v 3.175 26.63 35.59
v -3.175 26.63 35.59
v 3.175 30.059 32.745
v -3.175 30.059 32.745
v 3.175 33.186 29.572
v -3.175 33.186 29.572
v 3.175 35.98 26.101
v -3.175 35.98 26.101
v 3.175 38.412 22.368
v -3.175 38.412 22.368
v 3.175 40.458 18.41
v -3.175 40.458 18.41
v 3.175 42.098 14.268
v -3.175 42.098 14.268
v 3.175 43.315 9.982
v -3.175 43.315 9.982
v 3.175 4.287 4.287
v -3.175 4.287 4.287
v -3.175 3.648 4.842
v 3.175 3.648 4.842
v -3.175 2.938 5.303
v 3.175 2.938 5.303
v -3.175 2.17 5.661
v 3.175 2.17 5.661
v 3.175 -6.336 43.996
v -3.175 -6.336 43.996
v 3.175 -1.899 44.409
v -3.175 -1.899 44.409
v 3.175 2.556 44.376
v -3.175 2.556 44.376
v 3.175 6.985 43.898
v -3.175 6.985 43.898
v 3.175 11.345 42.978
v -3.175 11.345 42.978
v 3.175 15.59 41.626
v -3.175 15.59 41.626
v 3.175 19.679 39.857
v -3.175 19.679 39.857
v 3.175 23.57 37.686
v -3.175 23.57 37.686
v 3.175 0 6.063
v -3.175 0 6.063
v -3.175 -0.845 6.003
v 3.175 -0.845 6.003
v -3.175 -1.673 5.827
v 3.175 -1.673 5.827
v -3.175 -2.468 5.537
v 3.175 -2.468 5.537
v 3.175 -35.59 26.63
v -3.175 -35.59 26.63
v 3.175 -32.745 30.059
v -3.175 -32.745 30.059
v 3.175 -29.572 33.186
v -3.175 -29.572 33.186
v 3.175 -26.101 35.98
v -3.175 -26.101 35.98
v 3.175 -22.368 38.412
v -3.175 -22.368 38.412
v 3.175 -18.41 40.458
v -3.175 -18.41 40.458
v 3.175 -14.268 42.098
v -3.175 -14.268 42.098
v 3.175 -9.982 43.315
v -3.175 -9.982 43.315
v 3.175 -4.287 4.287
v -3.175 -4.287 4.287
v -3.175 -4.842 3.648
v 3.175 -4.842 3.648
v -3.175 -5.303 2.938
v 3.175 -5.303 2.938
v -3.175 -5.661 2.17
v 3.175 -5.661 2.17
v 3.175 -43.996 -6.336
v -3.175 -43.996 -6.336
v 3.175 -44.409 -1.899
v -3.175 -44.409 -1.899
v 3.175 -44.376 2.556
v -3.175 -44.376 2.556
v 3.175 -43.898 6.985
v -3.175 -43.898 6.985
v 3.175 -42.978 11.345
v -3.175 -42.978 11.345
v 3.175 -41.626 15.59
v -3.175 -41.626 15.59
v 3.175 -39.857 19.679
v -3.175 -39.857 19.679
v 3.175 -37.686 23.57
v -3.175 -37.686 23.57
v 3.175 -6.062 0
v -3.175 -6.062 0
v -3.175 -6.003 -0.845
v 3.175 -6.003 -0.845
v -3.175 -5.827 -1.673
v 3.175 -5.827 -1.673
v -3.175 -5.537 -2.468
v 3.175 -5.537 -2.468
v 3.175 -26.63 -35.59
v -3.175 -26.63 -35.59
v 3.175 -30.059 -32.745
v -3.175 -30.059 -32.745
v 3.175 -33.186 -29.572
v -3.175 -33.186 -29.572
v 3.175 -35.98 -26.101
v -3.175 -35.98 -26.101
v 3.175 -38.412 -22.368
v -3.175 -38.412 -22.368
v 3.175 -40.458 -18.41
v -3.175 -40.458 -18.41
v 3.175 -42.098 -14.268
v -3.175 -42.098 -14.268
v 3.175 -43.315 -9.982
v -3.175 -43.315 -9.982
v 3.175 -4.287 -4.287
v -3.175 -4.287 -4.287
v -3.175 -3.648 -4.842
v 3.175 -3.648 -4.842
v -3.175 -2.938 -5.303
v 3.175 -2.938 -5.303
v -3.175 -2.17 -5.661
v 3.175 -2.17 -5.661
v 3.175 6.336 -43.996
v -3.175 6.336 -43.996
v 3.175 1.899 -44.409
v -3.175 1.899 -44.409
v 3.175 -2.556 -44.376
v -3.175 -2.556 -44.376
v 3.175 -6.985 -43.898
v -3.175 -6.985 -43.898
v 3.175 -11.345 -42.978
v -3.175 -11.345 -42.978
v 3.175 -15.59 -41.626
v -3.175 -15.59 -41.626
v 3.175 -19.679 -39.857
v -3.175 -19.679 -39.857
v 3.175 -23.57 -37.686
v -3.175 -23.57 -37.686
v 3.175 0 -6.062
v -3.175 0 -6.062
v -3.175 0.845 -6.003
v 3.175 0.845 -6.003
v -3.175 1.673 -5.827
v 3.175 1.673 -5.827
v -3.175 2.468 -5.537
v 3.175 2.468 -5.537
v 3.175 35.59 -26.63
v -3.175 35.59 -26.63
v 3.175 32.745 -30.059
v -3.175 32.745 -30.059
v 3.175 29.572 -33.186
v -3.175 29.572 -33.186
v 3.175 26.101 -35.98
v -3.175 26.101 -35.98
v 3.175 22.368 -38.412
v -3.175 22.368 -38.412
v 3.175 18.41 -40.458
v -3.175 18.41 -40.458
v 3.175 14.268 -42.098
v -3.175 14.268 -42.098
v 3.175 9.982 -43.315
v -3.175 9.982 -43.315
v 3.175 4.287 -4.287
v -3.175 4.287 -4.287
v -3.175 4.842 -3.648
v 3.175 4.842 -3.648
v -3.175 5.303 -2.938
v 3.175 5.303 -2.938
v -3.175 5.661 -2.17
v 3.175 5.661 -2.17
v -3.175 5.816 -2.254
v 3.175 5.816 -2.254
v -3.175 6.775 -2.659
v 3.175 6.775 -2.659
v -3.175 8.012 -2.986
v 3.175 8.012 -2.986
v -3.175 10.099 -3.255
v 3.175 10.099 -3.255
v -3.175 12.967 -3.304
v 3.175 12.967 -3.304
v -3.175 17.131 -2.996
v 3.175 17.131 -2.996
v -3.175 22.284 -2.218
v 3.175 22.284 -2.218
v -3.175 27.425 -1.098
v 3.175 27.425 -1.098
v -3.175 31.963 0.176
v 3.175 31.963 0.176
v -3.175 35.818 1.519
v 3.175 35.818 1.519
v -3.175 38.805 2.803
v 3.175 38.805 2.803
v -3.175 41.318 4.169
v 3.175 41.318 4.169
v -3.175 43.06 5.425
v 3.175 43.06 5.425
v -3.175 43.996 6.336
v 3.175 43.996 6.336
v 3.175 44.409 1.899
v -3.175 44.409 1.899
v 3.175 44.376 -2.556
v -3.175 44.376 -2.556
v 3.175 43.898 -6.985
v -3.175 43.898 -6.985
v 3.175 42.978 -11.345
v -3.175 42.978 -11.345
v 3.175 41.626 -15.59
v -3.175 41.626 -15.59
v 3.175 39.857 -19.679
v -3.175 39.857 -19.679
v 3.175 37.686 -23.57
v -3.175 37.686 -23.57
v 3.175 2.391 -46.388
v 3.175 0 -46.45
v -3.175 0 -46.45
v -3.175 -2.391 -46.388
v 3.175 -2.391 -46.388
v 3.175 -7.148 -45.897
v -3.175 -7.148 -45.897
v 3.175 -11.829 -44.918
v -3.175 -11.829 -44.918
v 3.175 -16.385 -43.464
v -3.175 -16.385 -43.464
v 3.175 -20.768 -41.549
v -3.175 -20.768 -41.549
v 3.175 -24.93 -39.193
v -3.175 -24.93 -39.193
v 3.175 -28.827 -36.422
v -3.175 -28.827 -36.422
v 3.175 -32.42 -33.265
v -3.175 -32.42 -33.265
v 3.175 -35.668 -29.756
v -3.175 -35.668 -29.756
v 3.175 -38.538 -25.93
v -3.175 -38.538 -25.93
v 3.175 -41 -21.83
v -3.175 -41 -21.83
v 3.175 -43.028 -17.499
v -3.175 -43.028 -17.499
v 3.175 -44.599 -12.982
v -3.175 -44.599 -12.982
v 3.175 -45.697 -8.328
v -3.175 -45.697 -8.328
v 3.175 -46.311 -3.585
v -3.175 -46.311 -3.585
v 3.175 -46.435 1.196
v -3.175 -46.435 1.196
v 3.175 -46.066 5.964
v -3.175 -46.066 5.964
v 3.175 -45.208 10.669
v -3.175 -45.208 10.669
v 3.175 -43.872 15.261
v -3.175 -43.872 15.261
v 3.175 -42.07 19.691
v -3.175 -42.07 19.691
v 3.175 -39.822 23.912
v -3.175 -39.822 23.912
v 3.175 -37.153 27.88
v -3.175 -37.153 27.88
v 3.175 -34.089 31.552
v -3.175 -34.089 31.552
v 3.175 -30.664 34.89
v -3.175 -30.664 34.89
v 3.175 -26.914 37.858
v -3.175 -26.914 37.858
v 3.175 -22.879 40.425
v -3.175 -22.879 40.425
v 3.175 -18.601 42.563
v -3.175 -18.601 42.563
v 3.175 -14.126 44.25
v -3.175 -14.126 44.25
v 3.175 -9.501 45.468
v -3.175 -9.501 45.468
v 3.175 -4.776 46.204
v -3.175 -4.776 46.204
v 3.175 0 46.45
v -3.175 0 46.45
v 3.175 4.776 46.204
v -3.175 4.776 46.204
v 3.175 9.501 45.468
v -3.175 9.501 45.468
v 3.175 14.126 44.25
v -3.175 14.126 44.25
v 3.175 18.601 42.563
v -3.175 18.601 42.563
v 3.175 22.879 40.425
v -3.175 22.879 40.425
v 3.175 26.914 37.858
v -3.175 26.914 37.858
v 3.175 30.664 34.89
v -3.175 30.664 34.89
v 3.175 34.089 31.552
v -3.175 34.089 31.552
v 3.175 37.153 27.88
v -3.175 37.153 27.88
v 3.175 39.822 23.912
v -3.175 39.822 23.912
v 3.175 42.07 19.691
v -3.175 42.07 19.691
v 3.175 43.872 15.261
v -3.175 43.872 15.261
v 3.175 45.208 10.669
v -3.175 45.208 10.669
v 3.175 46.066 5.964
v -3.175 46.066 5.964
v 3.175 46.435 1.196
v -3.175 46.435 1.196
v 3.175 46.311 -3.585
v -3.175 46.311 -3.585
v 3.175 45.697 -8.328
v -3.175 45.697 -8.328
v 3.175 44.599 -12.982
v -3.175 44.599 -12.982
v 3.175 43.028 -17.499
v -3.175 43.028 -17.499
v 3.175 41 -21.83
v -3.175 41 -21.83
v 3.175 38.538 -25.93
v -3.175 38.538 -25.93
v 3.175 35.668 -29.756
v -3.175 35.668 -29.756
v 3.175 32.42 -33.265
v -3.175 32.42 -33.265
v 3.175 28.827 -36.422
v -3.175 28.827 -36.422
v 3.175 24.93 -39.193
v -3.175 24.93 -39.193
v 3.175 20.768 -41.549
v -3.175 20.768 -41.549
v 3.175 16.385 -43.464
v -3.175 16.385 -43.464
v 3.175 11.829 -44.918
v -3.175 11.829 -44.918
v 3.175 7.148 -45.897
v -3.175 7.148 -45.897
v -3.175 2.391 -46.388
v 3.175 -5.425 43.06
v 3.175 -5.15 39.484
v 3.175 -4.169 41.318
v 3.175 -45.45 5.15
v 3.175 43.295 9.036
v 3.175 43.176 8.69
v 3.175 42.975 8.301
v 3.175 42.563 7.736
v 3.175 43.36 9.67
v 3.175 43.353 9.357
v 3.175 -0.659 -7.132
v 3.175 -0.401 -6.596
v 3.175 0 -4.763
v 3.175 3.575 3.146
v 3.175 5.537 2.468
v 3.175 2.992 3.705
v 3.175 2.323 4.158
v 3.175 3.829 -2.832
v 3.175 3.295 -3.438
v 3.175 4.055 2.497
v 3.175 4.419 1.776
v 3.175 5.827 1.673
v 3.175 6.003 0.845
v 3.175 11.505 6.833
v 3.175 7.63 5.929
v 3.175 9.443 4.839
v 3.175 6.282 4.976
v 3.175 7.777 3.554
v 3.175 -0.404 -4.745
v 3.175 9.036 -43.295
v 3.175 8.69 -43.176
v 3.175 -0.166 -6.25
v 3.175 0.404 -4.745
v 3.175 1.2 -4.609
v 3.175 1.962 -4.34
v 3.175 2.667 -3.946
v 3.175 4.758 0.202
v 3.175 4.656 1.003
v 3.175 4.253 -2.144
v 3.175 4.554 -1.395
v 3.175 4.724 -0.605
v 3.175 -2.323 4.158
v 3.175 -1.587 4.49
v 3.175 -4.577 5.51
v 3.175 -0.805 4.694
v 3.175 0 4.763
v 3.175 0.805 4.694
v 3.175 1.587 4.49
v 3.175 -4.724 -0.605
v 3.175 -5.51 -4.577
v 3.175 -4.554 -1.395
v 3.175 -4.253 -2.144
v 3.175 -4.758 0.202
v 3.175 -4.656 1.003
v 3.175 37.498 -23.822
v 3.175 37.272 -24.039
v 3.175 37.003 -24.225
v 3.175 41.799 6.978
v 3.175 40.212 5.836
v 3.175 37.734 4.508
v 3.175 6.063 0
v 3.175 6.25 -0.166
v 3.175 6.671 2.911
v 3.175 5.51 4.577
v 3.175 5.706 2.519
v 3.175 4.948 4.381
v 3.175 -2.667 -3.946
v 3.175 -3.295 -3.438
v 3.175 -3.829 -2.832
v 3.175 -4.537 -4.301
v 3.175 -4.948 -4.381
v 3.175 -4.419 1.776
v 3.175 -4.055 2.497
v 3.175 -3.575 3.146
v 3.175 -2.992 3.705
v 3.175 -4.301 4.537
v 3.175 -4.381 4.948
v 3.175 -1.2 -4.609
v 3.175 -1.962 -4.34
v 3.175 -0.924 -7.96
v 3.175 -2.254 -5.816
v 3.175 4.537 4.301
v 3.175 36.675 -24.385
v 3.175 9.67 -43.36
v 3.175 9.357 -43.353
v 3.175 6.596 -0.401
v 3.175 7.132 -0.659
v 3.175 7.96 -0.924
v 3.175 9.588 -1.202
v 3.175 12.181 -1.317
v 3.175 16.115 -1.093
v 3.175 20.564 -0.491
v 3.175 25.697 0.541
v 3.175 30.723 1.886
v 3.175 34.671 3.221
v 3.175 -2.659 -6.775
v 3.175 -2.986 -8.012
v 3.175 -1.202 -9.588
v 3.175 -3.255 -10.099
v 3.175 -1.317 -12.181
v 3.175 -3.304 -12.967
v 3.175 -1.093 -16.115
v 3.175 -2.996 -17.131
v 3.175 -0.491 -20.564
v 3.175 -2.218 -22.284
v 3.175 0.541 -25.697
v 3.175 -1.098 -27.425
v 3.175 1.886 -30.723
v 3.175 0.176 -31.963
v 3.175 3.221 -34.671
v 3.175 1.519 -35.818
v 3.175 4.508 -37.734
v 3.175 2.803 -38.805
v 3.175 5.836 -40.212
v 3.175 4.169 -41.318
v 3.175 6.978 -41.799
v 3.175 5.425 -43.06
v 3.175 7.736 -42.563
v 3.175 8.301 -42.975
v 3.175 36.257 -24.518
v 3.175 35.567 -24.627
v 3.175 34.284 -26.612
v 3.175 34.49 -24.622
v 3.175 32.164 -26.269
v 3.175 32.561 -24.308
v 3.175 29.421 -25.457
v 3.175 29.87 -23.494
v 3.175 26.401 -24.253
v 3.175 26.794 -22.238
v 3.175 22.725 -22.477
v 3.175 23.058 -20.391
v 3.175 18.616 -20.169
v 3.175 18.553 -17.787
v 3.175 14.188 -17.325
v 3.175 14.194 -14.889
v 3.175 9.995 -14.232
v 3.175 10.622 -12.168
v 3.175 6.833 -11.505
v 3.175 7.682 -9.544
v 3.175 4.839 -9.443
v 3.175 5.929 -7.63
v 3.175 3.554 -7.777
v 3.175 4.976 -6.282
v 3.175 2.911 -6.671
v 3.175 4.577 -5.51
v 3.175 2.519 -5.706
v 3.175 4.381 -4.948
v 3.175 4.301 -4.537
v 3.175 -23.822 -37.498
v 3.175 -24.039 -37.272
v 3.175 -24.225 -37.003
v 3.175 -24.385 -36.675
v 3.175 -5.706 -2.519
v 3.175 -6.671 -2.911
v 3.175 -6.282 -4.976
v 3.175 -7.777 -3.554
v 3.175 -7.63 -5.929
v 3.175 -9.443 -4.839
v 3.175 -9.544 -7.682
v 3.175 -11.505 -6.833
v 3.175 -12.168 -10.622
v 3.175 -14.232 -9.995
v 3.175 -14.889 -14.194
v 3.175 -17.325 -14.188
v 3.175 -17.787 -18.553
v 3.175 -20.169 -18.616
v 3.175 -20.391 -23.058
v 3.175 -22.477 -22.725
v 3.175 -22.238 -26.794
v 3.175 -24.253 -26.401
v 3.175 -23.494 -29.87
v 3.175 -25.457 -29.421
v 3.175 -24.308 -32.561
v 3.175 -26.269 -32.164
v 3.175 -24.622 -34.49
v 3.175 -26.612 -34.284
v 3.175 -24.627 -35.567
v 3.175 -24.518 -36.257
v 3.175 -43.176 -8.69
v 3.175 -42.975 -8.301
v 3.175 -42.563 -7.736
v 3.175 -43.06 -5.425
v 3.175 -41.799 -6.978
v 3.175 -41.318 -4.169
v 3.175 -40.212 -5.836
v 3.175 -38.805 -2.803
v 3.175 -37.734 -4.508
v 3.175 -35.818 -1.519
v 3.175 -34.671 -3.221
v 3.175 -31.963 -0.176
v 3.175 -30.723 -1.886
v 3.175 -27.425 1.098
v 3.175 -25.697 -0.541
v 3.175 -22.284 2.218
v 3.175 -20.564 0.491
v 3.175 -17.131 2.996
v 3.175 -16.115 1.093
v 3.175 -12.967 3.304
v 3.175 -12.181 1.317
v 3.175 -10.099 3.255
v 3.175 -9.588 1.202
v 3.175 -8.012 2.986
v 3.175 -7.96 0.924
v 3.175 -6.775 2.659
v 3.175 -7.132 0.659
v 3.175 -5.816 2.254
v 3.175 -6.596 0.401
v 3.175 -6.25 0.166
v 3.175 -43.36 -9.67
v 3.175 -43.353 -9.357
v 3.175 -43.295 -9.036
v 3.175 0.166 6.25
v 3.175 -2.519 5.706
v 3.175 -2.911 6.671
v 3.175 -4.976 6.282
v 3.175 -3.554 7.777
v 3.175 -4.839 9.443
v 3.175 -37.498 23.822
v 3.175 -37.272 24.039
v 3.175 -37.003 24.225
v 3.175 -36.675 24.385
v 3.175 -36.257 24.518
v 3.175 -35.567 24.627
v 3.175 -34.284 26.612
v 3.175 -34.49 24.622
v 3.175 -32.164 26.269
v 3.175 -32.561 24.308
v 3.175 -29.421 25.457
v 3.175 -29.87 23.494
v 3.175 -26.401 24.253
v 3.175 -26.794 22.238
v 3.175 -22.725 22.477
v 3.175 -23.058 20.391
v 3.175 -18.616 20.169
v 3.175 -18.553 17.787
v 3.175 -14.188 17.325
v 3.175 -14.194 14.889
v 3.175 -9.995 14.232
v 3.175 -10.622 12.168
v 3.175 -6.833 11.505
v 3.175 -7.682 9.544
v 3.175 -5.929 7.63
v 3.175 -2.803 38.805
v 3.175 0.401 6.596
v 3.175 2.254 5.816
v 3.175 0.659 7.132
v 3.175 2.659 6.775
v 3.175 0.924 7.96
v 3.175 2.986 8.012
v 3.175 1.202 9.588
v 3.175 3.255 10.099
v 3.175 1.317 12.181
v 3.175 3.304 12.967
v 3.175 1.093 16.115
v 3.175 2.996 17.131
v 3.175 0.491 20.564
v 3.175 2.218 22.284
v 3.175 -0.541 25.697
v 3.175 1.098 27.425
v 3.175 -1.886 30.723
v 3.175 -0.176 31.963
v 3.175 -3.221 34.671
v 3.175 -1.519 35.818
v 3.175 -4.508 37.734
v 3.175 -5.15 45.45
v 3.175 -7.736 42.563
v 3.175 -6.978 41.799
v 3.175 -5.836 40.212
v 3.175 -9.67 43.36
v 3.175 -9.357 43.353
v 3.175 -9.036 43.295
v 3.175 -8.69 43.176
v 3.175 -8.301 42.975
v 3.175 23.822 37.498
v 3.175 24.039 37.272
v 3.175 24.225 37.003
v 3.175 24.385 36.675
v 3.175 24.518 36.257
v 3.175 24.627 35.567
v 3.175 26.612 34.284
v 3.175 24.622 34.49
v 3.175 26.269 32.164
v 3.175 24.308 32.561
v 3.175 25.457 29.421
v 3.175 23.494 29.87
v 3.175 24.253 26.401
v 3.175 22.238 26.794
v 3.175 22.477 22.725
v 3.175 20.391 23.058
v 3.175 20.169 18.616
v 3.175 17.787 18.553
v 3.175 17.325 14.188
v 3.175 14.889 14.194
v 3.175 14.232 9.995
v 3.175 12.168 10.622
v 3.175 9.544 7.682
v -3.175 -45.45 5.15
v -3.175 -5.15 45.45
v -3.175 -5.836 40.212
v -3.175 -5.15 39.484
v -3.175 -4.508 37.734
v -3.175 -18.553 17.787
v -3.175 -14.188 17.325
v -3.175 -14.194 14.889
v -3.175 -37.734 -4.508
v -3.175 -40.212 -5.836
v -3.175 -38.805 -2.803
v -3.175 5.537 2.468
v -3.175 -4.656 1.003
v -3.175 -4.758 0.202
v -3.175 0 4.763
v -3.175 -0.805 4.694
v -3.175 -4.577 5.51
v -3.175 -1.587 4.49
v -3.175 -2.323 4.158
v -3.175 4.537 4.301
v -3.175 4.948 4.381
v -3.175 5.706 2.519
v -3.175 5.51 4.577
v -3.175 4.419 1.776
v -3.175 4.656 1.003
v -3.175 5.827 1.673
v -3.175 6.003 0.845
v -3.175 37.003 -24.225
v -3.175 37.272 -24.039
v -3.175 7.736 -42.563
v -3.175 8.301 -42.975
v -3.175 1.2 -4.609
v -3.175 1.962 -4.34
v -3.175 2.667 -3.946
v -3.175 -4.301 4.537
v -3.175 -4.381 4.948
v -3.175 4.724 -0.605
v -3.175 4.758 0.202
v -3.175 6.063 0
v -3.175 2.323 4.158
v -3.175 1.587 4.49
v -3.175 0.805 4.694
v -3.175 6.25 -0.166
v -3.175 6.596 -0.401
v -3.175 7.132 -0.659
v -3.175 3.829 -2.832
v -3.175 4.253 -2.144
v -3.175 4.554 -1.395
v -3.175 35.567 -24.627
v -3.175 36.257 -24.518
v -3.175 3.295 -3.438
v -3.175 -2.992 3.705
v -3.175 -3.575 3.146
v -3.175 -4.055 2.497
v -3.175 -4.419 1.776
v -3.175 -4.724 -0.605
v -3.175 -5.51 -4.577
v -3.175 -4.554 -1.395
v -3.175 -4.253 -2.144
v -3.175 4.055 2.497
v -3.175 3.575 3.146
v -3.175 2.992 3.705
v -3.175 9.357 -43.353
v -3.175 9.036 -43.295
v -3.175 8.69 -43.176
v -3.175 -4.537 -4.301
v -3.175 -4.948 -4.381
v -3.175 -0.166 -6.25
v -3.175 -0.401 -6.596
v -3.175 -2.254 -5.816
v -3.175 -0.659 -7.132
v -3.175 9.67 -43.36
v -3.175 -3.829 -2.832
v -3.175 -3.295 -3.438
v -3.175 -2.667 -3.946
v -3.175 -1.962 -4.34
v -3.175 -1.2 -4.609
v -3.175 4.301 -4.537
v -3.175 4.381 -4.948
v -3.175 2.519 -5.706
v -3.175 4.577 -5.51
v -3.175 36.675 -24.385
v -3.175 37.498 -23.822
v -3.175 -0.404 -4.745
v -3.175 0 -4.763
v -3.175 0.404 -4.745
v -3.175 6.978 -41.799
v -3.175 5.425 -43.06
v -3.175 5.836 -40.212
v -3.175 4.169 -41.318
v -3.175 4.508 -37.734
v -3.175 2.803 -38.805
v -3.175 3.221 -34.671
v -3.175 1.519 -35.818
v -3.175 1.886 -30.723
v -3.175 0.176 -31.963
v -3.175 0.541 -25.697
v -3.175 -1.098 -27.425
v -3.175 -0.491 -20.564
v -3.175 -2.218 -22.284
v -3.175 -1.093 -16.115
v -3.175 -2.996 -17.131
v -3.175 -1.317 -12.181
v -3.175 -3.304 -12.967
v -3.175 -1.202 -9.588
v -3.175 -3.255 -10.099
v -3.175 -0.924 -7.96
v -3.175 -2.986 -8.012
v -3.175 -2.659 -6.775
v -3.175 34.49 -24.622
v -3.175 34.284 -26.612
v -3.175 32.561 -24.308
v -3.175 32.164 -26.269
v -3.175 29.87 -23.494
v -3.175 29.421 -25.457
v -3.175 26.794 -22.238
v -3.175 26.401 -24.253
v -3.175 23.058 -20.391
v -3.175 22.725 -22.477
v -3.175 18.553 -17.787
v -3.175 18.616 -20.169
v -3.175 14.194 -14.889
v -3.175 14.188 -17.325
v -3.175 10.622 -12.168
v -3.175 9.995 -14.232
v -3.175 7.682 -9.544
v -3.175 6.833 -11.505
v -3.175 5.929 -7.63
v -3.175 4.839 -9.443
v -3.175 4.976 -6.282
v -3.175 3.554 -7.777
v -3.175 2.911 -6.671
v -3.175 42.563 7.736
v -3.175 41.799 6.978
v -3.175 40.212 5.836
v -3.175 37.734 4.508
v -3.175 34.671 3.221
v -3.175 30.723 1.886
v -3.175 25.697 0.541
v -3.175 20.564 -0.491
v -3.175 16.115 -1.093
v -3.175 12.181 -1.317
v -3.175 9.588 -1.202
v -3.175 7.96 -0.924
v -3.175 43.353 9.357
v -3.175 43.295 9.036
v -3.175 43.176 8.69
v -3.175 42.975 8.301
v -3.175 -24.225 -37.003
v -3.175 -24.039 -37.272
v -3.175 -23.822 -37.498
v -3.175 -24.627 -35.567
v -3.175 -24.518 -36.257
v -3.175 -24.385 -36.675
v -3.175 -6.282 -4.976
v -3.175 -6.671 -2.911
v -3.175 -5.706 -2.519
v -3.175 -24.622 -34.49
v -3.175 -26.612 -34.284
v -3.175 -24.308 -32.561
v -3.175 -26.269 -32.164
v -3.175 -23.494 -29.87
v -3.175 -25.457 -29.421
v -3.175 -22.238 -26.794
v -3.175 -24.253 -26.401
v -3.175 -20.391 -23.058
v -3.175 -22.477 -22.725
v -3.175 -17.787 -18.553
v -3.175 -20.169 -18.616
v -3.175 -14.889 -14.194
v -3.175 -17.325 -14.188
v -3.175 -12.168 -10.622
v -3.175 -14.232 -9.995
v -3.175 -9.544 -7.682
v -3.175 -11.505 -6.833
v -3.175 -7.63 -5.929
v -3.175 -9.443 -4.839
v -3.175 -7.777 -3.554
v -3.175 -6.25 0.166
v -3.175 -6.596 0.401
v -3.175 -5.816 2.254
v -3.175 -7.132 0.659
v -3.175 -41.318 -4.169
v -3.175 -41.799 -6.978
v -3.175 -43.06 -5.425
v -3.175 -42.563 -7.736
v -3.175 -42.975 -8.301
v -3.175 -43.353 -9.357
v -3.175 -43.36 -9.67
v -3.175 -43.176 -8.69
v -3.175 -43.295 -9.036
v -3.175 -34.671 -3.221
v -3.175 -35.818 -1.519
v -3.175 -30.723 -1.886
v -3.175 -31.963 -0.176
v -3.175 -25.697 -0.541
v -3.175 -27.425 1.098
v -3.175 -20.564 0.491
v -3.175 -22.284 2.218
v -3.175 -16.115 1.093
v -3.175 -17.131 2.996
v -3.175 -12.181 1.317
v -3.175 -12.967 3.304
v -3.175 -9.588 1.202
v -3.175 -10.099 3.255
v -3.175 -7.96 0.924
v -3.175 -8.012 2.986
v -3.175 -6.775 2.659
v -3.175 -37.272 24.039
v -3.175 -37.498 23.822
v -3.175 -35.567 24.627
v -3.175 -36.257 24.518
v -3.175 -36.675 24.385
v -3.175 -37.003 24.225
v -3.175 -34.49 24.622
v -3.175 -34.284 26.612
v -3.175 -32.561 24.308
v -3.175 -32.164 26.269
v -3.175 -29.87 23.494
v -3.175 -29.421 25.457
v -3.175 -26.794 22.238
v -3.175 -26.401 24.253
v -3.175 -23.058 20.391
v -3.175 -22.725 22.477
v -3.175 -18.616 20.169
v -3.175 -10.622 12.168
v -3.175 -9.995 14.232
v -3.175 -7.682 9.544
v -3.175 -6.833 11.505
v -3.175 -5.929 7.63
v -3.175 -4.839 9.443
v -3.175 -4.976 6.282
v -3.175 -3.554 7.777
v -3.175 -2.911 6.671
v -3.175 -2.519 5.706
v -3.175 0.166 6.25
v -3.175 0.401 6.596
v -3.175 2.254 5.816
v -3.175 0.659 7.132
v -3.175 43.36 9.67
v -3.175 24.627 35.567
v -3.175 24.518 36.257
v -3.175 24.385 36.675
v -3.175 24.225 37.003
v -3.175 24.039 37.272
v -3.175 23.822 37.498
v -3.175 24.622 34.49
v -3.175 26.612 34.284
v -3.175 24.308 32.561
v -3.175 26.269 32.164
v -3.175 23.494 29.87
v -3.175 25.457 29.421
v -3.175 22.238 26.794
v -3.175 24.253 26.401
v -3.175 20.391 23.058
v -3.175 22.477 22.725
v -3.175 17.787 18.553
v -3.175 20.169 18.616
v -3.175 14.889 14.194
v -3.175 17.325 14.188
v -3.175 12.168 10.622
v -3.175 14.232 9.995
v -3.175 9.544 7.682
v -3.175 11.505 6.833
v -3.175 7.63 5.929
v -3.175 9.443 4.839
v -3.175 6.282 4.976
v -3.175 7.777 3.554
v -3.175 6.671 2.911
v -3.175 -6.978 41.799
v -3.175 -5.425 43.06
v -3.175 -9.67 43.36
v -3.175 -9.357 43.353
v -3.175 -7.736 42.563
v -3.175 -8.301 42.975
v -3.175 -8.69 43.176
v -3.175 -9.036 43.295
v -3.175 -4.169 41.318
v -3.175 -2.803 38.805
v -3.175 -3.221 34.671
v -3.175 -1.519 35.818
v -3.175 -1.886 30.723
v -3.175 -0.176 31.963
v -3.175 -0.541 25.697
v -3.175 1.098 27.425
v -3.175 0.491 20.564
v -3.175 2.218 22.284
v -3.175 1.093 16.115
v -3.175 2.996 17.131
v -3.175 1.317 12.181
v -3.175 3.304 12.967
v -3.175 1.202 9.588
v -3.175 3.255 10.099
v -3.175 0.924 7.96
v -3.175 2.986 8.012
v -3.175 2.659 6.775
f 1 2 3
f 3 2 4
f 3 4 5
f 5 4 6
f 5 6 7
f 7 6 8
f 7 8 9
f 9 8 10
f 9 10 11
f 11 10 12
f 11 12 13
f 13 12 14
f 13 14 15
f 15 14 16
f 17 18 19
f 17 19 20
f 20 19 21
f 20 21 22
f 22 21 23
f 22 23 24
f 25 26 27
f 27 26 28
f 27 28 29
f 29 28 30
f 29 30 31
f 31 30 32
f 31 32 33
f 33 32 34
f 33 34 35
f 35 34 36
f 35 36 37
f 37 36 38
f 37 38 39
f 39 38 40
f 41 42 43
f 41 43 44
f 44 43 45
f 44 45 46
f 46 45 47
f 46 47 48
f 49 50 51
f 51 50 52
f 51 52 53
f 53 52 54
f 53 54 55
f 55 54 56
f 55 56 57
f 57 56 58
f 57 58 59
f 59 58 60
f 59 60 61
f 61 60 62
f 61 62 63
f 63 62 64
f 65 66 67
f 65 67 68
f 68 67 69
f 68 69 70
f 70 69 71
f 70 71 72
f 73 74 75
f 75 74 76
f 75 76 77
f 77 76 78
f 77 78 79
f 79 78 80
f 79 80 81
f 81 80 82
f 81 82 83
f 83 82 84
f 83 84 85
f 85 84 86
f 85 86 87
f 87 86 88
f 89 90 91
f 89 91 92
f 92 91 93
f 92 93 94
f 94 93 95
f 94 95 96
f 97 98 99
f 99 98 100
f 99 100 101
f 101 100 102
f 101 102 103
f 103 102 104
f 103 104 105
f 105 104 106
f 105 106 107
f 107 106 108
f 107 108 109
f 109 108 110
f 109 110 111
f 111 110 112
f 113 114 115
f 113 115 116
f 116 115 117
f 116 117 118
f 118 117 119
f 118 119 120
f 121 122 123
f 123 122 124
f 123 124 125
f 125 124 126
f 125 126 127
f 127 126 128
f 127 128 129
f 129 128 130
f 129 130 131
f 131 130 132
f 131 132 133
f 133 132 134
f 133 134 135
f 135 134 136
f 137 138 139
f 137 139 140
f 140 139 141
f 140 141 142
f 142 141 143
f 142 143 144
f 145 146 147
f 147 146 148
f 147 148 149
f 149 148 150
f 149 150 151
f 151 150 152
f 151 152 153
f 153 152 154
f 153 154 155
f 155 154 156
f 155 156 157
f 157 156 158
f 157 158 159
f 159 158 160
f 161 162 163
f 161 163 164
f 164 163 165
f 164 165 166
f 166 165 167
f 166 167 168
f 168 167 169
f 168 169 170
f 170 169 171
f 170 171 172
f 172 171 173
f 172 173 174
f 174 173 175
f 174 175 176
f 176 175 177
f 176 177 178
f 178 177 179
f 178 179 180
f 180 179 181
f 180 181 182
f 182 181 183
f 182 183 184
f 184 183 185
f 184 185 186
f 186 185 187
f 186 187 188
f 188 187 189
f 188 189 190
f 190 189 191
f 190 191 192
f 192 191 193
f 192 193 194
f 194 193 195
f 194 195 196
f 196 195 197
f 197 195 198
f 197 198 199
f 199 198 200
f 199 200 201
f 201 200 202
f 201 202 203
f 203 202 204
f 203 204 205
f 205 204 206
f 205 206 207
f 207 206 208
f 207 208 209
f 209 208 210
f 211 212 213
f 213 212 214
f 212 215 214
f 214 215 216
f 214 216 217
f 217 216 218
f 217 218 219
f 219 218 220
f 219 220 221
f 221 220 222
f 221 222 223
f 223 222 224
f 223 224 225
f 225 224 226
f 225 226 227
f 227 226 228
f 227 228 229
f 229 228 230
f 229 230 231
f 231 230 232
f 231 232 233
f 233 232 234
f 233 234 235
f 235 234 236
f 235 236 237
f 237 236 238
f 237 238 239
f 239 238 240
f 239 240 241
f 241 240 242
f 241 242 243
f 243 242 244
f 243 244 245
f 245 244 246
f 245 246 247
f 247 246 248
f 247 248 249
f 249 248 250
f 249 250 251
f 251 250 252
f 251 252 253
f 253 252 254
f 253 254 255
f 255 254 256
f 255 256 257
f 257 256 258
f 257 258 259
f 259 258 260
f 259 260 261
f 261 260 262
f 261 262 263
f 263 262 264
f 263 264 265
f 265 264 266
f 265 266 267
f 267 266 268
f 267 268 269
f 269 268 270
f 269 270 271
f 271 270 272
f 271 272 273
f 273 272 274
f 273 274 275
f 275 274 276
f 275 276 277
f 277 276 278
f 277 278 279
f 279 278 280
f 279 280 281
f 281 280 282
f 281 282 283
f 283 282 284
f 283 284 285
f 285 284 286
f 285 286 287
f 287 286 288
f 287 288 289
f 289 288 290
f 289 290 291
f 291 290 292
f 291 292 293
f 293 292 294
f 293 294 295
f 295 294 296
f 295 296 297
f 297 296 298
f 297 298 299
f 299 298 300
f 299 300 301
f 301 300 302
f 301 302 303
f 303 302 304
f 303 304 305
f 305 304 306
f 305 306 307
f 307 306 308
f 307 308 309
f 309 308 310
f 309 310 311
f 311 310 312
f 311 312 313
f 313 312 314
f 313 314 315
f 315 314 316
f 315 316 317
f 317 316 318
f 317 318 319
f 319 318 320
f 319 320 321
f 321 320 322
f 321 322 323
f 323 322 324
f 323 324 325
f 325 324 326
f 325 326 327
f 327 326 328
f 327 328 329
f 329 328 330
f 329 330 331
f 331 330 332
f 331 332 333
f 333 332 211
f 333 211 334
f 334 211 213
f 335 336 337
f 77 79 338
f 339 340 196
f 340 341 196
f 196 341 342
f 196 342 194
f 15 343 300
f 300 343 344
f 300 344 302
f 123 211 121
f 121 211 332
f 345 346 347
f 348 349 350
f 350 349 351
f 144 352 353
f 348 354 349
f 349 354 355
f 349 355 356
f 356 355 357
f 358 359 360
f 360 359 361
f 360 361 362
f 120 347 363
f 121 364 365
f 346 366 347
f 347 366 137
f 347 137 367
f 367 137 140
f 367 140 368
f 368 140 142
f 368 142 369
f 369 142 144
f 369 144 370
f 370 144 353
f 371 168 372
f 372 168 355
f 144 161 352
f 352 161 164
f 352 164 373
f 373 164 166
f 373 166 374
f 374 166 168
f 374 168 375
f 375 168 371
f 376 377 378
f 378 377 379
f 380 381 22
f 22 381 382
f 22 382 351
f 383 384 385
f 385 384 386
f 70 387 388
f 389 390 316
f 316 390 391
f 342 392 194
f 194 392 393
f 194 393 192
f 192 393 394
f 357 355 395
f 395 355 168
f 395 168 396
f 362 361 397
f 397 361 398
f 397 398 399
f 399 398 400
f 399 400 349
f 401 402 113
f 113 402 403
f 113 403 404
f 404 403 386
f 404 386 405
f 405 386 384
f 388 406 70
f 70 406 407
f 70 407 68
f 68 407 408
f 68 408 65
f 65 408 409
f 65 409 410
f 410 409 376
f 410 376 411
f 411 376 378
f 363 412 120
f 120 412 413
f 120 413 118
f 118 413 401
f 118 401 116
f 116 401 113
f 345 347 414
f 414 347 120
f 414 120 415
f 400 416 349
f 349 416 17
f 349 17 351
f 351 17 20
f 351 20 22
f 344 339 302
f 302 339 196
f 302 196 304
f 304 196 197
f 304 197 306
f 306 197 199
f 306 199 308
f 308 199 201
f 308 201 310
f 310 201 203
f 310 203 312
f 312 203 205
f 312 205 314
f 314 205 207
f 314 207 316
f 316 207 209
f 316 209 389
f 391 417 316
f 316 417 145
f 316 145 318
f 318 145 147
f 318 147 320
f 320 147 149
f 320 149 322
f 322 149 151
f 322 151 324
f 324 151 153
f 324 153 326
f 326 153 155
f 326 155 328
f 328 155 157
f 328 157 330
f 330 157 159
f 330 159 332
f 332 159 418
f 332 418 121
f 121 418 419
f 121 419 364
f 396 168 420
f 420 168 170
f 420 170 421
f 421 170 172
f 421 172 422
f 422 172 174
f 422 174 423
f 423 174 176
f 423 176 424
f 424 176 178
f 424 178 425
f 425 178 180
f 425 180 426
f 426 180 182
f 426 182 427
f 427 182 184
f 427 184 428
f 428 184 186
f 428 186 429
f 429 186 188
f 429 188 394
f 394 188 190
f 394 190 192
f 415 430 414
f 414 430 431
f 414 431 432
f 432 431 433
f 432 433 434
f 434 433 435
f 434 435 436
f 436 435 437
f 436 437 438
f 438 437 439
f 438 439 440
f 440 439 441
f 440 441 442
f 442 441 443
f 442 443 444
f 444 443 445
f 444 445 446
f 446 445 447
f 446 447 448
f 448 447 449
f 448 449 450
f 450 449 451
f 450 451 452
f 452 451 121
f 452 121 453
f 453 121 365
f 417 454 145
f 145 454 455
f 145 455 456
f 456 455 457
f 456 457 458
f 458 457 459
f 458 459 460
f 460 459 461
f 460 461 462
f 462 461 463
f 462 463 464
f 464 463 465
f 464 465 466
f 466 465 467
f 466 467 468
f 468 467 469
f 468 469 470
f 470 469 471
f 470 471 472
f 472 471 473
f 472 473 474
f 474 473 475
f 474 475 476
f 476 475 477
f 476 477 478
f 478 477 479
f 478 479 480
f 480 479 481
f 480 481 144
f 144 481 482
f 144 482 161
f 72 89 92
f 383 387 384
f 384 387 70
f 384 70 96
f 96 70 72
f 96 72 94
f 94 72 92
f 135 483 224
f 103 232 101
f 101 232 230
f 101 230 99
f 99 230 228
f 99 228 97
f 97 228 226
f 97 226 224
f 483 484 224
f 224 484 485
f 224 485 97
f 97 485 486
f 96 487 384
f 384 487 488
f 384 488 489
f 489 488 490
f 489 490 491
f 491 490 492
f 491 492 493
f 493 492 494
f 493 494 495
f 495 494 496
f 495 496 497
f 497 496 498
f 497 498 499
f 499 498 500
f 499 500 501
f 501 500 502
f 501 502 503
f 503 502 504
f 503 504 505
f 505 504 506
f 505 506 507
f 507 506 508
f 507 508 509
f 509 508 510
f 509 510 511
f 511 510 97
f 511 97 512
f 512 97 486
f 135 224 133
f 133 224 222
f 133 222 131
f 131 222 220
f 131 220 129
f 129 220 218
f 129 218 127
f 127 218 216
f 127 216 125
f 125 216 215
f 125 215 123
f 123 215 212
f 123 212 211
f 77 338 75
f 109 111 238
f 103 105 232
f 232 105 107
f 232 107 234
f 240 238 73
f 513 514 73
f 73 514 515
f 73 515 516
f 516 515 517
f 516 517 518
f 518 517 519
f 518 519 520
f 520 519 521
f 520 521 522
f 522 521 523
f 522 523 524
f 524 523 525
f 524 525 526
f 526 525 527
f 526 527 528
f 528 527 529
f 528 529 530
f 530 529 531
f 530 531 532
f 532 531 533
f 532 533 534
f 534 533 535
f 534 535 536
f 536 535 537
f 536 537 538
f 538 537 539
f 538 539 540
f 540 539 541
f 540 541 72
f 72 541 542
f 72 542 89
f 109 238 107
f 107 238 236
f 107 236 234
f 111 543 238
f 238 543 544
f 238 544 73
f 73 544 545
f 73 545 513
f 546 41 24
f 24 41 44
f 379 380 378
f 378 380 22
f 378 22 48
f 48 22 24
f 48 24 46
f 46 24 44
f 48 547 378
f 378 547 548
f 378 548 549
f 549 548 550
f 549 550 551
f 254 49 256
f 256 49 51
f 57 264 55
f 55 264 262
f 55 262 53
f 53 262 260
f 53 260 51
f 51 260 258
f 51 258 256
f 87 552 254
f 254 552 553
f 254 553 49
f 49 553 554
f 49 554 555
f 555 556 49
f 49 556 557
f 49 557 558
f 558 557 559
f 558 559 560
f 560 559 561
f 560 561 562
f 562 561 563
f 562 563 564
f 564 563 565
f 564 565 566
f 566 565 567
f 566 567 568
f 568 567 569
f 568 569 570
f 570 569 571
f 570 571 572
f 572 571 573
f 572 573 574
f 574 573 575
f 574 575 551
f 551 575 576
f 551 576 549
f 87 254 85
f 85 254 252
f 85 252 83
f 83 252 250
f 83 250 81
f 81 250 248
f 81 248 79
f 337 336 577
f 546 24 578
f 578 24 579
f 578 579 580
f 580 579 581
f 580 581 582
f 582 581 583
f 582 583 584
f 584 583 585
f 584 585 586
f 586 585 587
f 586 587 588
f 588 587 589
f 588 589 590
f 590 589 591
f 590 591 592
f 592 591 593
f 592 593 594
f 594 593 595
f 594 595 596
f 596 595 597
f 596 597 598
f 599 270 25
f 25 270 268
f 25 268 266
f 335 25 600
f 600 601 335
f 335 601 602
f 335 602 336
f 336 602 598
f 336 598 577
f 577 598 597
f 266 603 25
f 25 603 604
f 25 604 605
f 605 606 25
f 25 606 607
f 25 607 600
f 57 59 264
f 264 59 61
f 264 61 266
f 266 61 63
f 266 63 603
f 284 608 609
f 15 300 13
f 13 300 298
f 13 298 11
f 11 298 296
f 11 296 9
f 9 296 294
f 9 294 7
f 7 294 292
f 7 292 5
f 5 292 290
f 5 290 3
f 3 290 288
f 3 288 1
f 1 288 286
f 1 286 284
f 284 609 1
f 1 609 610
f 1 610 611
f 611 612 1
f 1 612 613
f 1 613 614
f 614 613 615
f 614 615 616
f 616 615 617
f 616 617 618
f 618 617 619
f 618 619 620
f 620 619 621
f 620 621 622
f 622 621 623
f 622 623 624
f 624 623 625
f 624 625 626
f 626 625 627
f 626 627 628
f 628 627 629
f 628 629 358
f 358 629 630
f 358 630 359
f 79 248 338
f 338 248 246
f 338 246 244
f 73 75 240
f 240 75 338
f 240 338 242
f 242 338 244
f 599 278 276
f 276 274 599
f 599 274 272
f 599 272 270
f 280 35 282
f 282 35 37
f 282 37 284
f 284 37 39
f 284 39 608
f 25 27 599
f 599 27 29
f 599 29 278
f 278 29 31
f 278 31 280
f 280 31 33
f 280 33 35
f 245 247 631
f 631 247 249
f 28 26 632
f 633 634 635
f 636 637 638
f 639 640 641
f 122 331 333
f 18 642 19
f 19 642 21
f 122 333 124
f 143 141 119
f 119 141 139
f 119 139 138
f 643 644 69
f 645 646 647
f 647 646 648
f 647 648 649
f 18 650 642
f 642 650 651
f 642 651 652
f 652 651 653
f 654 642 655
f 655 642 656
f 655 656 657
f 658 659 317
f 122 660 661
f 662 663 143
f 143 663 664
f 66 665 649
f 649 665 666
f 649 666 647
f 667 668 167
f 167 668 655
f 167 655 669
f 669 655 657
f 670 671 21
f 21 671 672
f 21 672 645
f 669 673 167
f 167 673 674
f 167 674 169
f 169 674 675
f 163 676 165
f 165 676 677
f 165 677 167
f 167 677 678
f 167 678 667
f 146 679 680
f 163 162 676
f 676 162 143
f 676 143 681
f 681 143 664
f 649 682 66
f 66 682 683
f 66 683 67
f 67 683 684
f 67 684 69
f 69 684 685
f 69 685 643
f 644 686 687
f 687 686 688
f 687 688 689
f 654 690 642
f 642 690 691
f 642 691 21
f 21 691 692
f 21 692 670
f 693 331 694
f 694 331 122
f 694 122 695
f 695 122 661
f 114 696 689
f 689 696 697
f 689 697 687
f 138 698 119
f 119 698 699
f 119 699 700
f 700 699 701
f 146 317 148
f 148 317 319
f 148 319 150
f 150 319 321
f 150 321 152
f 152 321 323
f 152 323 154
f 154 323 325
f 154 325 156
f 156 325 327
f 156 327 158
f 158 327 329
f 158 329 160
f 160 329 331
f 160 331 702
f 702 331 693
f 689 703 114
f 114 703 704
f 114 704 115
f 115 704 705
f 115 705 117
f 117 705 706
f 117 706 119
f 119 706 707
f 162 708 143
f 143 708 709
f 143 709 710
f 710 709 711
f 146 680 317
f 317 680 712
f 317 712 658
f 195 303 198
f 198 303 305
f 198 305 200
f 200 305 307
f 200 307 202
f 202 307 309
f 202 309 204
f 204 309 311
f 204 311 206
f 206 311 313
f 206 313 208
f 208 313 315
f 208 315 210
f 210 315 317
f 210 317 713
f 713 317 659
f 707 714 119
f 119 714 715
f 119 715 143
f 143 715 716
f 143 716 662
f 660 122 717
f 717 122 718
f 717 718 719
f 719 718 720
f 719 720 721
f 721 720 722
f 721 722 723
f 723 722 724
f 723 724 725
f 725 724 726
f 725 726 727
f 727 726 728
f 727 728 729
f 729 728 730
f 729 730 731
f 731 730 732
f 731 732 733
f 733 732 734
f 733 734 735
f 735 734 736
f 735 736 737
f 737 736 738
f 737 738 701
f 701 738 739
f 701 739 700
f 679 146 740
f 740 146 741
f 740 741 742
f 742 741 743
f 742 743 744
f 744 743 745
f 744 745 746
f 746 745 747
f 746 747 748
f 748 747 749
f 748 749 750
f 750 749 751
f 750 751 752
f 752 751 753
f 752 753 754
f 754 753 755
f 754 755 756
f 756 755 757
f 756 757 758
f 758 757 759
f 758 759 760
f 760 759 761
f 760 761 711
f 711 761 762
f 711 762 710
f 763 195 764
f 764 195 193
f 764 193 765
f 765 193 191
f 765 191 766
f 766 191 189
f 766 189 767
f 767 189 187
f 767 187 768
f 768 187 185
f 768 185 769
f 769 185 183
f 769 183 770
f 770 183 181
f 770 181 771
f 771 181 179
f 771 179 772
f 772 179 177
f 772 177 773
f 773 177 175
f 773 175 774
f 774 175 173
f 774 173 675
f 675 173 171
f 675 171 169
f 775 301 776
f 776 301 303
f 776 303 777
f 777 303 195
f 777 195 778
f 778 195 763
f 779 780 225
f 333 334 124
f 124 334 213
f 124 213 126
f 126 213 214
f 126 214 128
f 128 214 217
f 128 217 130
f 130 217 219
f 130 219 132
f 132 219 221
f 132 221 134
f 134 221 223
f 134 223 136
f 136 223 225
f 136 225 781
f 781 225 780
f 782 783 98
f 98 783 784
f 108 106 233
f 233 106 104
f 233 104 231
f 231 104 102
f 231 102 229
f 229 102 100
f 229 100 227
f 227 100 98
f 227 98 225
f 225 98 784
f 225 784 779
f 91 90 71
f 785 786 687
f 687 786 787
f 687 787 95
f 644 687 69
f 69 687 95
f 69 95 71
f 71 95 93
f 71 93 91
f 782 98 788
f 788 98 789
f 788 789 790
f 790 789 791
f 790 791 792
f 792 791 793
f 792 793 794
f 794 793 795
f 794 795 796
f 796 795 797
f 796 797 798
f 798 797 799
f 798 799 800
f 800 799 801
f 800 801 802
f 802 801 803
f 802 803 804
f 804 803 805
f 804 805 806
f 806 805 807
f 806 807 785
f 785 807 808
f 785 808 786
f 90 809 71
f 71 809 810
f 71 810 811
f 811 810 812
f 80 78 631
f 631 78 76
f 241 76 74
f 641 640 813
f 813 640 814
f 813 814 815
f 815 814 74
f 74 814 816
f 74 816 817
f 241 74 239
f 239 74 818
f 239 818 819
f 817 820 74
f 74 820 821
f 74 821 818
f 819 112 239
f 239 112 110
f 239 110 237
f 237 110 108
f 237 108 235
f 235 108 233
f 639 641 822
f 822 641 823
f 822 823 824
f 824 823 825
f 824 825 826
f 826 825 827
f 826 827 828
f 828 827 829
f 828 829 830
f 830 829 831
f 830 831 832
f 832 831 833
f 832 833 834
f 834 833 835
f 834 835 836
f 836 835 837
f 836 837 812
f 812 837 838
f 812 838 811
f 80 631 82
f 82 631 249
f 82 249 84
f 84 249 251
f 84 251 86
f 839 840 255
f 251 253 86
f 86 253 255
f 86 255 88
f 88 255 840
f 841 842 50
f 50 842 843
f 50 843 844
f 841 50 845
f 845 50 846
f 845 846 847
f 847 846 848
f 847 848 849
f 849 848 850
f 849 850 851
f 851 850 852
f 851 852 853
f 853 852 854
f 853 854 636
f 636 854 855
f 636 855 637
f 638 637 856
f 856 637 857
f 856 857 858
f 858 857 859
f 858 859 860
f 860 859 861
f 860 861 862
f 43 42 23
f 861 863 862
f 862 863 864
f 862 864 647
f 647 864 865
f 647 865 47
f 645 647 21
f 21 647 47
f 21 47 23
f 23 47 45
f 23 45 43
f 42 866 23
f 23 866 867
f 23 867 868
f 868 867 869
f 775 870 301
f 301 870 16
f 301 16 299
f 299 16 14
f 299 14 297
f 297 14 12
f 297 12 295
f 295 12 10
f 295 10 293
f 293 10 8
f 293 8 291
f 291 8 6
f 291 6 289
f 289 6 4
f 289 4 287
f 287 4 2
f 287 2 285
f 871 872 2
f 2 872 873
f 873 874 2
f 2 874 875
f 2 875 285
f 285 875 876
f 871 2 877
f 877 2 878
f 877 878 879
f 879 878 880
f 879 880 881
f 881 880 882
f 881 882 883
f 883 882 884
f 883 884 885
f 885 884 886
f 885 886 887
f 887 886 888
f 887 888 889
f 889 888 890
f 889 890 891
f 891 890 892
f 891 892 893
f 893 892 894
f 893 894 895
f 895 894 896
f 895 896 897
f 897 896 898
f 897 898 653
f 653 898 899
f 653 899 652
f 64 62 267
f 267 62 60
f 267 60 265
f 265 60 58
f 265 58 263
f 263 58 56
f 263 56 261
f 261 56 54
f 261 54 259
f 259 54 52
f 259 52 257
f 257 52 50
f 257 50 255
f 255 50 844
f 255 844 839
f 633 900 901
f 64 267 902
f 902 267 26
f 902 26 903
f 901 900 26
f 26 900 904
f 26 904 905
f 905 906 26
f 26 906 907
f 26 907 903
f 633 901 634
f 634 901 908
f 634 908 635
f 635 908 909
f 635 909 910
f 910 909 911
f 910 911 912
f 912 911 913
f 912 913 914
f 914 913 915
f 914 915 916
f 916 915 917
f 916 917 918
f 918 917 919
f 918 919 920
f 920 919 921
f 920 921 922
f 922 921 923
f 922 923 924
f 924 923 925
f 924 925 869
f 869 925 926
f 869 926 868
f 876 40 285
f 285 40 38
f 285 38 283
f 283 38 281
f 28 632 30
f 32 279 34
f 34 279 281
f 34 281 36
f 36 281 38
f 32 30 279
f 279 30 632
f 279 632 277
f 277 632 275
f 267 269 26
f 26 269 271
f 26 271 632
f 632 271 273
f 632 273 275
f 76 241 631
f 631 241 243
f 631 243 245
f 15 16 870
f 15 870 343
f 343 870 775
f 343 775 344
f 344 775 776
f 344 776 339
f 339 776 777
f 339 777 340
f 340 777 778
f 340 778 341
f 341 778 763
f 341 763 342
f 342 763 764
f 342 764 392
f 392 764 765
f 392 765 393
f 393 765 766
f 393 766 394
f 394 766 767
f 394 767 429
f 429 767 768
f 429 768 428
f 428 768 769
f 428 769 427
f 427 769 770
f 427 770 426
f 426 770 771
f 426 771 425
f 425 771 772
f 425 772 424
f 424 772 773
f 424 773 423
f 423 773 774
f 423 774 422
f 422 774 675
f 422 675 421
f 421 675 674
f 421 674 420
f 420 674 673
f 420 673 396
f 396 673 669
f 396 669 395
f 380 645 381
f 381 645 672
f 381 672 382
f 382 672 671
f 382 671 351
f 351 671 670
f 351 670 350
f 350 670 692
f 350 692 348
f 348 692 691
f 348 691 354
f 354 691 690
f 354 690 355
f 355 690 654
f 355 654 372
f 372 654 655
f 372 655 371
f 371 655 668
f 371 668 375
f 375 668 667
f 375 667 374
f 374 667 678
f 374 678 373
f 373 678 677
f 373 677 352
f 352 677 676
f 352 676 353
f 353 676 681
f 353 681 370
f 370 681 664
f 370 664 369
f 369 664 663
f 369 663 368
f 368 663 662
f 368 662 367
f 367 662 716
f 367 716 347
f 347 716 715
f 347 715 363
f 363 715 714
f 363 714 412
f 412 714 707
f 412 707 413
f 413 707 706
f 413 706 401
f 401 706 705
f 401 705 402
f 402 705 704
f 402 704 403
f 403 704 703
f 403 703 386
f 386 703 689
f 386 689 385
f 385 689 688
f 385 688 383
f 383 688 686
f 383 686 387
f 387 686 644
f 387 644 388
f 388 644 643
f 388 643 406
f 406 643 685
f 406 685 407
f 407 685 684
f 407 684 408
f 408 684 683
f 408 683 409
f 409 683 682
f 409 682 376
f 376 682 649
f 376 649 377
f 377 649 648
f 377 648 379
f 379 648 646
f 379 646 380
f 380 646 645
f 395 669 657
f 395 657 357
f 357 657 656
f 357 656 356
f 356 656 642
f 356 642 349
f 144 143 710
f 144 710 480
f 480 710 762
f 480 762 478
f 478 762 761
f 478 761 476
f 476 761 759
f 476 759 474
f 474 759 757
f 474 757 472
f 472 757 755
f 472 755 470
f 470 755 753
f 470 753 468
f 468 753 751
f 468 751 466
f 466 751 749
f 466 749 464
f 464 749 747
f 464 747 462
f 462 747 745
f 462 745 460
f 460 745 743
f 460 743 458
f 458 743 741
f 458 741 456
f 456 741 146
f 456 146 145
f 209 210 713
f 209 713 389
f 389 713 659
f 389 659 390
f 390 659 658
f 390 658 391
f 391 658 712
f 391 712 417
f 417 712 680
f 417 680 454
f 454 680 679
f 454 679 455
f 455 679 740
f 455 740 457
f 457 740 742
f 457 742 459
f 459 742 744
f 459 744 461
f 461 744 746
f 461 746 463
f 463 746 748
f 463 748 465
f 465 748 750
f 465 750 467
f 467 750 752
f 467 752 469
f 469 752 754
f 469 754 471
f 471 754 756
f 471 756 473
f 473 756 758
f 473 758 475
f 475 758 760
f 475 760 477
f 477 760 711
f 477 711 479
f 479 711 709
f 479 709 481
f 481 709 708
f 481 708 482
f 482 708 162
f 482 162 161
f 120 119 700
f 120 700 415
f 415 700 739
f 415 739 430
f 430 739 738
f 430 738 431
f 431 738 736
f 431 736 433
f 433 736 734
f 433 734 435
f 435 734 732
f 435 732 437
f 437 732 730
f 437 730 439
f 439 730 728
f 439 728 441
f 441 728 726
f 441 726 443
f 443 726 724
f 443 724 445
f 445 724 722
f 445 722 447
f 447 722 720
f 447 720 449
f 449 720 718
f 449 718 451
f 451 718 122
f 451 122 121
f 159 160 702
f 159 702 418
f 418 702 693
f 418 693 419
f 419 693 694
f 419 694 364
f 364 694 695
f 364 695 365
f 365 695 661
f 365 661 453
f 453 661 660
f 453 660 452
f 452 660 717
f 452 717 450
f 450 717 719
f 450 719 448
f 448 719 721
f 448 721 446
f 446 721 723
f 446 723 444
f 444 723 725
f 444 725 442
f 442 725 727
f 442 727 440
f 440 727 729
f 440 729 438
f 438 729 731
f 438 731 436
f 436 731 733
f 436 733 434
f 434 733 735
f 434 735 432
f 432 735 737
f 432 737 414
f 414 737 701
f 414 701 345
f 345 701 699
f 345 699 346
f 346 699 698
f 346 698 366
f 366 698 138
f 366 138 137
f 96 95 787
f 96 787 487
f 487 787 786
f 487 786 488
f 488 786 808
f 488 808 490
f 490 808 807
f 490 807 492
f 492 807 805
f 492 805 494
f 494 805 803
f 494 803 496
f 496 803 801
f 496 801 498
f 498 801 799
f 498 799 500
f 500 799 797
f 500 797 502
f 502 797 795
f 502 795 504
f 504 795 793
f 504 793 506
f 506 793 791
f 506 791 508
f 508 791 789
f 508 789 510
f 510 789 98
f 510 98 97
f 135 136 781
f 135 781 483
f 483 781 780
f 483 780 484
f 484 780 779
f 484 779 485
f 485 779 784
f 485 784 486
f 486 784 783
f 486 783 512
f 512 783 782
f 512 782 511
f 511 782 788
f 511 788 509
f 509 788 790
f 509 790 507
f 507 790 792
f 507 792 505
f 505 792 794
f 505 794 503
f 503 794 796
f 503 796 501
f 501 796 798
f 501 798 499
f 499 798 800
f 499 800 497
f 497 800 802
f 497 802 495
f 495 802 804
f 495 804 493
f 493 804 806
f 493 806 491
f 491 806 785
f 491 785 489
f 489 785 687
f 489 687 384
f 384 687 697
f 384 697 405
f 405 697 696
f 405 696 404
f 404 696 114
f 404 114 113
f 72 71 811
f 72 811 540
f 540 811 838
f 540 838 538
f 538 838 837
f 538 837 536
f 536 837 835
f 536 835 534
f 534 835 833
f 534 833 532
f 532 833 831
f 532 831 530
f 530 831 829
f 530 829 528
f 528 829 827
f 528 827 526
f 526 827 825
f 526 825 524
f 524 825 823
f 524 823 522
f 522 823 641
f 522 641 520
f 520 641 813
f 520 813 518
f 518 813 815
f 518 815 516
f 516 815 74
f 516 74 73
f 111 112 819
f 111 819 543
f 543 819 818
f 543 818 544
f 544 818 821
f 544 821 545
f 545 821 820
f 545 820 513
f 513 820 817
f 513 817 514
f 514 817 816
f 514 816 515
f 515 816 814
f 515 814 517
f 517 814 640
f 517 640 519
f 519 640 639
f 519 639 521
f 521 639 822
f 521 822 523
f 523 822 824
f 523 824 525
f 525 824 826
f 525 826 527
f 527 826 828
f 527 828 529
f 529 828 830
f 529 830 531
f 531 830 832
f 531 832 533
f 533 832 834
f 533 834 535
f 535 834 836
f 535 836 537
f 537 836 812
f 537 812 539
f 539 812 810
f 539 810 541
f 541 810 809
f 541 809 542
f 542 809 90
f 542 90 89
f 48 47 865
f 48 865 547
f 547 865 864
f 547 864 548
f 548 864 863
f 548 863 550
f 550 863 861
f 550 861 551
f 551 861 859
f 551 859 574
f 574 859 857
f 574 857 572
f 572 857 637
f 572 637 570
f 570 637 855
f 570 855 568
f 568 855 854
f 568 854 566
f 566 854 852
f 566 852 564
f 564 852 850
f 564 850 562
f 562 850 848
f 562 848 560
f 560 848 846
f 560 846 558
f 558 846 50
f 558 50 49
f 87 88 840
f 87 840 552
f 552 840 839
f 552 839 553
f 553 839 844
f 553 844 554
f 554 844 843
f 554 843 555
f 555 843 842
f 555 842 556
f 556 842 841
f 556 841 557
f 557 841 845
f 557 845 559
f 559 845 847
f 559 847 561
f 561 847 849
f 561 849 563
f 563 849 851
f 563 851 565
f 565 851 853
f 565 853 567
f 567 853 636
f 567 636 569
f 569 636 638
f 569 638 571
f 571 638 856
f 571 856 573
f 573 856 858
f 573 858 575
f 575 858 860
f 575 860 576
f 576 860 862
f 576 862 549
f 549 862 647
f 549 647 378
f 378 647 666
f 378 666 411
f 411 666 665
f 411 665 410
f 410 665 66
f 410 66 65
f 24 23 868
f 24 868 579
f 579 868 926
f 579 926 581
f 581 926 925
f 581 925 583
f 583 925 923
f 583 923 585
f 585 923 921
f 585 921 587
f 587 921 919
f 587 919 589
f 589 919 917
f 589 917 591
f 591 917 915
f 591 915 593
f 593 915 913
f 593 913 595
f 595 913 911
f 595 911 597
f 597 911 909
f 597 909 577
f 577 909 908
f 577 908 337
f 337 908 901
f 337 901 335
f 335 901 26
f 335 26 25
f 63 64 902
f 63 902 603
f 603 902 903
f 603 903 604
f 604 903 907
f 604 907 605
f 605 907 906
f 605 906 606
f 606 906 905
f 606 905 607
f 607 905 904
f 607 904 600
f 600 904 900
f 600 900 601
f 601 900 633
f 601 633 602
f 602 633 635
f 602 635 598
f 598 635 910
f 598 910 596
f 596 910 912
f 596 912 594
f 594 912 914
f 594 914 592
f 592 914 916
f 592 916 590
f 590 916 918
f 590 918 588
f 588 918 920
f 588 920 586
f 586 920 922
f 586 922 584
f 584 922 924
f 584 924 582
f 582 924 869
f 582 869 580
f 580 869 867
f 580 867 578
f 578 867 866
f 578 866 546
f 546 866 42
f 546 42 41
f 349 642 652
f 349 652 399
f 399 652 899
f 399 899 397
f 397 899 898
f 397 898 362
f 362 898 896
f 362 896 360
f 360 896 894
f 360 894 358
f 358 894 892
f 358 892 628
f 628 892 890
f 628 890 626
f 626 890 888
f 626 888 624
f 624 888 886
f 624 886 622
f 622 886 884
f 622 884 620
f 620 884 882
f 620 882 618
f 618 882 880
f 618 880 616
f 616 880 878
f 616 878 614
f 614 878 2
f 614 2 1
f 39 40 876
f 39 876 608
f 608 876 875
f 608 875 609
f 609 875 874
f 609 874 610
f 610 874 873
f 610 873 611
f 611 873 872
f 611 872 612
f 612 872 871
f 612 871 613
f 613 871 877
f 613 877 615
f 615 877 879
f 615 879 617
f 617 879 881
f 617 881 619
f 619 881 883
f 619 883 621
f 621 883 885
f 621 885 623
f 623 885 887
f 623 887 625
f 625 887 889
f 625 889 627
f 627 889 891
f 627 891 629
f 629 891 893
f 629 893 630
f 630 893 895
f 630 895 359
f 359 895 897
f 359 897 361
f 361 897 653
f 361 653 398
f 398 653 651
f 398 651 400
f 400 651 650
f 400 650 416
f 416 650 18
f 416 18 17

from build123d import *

# Parameters (mm, degrees)
SKETCH1_R             = 6.0625
SKETCH1_R_2           = 4.7625
BOSS_EXTRUDE1_DEPTH   = 3.175
SKETCH1_R_3           = 46.45
SKETCH1_R_4           = 44.45
BOSS_EXTRUDE1_2_DEPTH = 3.175
EXTRUDE_THIN2_START   = -3.175
EXTRUDE_THIN2_DEPTH   = 6.35
CIRPATTERN1_COUNT     = 8


# Read off the part's stored shape, not the designer's step: Extrude-Thin2
with BuildPart() as part:
    # Sketch1 → Boss-Extrude1 (new, symmetric)
    with BuildSketch(Plane(origin=(0, 0, 0), x_dir=(0, 0, -1), z_dir=(1, 0, 0))):
        Circle(SKETCH1_R)
        Circle(SKETCH1_R_2, mode=Mode.SUBTRACT)
    extrude(amount=BOSS_EXTRUDE1_DEPTH, both=True)



with BuildPart() as body_2:
    # Sketch1 → Boss-Extrude1 2 (new, symmetric)
    with BuildSketch(Plane(origin=(0, 0, 0), x_dir=(0, 0, -1), z_dir=(1, 0, 0))):
        Circle(SKETCH1_R_3)
        Circle(SKETCH1_R_4, mode=Mode.SUBTRACT)
    extrude(amount=BOSS_EXTRUDE1_2_DEPTH, both=True)


with BuildPart() as part_1:
    add(part.part)

    add(body_2.part)  # Extrude-Thin2 merges body 2
    # Extrude-Thin2 outline → Extrude-Thin2 (add)
    with BuildSketch(Plane(origin=(0, 0, 0), x_dir=(0, 0, -1), z_dir=(1, 0, 0)).offset(EXTRUDE_THIN2_START)):
        with BuildLine():
            add(Edge.make_bspline(
                [(-6.3355985, 43.996166784), (-6.255095923, 43.925032839), (-6.175963075, 43.852068198), (-5.548698351, 43.251204224), (-5.055604829, 42.640291134), (-4.116147204, 41.27108179), (-3.6714525, 40.51169877), (-2.385479272, 38.035518018), (-1.591781782, 36.118997617), (-0.134960901, 31.957605755), (0.525933851, 29.714211022), (1.670203871, 25.136721013), (2.153284246, 22.803242272), (2.890531028, 18.2847466), (3.145030649, 16.100931227), (3.311299949, 13.10122741), (3.330807031, 12.147155076), (3.286885537, 10.350080052), (3.224038366, 9.507507634), (2.992965499, 7.938587571), (2.827561189, 7.21225965), (2.459079192, 6.233276095), (2.328164202, 5.942334081), (2.170097204, 5.660793617)],
                knots=[0.116131233, 0.116131233, 0.116131233, 0.116131233, 0.125, 0.125, 0.1875, 0.1875, 0.25, 0.25, 0.375, 0.375, 0.5, 0.5, 0.625, 0.625, 0.75, 0.75, 0.8125, 0.8125, 0.875, 0.875, 0.9375, 0.9375, 0.965067589, 0.965067589, 0.965067589, 0.965067589], degree=3))
            ThreePointArc((-6.3355985, 43.996166784), (-8.165765838, 43.693509453), (-9.981711445, 43.31475426))
            add(Edge.make_bspline(
                [(-9.981711445, 43.31475426), (-3.408827872, 44.829448925), (4.490128061, 10.552628061), (0, 6.0625)],
                knots=[0, 0, 0, 0, 1, 1, 1, 1], degree=3))
            ThreePointArc((0, 6.0625), (1.103481977, 5.961227539), (2.170097204, 5.660793617))
        make_face()
    extrude_thin2 = extrude(amount=EXTRUDE_THIN2_DEPTH)

    # CirPattern1: Extrude-Thin2 ×8 about axis
    cirpattern1_axis = Axis((56.075510447, 0, 0), (-1, 0, 0))
    for i in range(1, CIRPATTERN1_COUNT):
        add(extrude_thin2.rotate(cirpattern1_axis, i * 360 / CIRPATTERN1_COUNT))


solid = part_1.part
